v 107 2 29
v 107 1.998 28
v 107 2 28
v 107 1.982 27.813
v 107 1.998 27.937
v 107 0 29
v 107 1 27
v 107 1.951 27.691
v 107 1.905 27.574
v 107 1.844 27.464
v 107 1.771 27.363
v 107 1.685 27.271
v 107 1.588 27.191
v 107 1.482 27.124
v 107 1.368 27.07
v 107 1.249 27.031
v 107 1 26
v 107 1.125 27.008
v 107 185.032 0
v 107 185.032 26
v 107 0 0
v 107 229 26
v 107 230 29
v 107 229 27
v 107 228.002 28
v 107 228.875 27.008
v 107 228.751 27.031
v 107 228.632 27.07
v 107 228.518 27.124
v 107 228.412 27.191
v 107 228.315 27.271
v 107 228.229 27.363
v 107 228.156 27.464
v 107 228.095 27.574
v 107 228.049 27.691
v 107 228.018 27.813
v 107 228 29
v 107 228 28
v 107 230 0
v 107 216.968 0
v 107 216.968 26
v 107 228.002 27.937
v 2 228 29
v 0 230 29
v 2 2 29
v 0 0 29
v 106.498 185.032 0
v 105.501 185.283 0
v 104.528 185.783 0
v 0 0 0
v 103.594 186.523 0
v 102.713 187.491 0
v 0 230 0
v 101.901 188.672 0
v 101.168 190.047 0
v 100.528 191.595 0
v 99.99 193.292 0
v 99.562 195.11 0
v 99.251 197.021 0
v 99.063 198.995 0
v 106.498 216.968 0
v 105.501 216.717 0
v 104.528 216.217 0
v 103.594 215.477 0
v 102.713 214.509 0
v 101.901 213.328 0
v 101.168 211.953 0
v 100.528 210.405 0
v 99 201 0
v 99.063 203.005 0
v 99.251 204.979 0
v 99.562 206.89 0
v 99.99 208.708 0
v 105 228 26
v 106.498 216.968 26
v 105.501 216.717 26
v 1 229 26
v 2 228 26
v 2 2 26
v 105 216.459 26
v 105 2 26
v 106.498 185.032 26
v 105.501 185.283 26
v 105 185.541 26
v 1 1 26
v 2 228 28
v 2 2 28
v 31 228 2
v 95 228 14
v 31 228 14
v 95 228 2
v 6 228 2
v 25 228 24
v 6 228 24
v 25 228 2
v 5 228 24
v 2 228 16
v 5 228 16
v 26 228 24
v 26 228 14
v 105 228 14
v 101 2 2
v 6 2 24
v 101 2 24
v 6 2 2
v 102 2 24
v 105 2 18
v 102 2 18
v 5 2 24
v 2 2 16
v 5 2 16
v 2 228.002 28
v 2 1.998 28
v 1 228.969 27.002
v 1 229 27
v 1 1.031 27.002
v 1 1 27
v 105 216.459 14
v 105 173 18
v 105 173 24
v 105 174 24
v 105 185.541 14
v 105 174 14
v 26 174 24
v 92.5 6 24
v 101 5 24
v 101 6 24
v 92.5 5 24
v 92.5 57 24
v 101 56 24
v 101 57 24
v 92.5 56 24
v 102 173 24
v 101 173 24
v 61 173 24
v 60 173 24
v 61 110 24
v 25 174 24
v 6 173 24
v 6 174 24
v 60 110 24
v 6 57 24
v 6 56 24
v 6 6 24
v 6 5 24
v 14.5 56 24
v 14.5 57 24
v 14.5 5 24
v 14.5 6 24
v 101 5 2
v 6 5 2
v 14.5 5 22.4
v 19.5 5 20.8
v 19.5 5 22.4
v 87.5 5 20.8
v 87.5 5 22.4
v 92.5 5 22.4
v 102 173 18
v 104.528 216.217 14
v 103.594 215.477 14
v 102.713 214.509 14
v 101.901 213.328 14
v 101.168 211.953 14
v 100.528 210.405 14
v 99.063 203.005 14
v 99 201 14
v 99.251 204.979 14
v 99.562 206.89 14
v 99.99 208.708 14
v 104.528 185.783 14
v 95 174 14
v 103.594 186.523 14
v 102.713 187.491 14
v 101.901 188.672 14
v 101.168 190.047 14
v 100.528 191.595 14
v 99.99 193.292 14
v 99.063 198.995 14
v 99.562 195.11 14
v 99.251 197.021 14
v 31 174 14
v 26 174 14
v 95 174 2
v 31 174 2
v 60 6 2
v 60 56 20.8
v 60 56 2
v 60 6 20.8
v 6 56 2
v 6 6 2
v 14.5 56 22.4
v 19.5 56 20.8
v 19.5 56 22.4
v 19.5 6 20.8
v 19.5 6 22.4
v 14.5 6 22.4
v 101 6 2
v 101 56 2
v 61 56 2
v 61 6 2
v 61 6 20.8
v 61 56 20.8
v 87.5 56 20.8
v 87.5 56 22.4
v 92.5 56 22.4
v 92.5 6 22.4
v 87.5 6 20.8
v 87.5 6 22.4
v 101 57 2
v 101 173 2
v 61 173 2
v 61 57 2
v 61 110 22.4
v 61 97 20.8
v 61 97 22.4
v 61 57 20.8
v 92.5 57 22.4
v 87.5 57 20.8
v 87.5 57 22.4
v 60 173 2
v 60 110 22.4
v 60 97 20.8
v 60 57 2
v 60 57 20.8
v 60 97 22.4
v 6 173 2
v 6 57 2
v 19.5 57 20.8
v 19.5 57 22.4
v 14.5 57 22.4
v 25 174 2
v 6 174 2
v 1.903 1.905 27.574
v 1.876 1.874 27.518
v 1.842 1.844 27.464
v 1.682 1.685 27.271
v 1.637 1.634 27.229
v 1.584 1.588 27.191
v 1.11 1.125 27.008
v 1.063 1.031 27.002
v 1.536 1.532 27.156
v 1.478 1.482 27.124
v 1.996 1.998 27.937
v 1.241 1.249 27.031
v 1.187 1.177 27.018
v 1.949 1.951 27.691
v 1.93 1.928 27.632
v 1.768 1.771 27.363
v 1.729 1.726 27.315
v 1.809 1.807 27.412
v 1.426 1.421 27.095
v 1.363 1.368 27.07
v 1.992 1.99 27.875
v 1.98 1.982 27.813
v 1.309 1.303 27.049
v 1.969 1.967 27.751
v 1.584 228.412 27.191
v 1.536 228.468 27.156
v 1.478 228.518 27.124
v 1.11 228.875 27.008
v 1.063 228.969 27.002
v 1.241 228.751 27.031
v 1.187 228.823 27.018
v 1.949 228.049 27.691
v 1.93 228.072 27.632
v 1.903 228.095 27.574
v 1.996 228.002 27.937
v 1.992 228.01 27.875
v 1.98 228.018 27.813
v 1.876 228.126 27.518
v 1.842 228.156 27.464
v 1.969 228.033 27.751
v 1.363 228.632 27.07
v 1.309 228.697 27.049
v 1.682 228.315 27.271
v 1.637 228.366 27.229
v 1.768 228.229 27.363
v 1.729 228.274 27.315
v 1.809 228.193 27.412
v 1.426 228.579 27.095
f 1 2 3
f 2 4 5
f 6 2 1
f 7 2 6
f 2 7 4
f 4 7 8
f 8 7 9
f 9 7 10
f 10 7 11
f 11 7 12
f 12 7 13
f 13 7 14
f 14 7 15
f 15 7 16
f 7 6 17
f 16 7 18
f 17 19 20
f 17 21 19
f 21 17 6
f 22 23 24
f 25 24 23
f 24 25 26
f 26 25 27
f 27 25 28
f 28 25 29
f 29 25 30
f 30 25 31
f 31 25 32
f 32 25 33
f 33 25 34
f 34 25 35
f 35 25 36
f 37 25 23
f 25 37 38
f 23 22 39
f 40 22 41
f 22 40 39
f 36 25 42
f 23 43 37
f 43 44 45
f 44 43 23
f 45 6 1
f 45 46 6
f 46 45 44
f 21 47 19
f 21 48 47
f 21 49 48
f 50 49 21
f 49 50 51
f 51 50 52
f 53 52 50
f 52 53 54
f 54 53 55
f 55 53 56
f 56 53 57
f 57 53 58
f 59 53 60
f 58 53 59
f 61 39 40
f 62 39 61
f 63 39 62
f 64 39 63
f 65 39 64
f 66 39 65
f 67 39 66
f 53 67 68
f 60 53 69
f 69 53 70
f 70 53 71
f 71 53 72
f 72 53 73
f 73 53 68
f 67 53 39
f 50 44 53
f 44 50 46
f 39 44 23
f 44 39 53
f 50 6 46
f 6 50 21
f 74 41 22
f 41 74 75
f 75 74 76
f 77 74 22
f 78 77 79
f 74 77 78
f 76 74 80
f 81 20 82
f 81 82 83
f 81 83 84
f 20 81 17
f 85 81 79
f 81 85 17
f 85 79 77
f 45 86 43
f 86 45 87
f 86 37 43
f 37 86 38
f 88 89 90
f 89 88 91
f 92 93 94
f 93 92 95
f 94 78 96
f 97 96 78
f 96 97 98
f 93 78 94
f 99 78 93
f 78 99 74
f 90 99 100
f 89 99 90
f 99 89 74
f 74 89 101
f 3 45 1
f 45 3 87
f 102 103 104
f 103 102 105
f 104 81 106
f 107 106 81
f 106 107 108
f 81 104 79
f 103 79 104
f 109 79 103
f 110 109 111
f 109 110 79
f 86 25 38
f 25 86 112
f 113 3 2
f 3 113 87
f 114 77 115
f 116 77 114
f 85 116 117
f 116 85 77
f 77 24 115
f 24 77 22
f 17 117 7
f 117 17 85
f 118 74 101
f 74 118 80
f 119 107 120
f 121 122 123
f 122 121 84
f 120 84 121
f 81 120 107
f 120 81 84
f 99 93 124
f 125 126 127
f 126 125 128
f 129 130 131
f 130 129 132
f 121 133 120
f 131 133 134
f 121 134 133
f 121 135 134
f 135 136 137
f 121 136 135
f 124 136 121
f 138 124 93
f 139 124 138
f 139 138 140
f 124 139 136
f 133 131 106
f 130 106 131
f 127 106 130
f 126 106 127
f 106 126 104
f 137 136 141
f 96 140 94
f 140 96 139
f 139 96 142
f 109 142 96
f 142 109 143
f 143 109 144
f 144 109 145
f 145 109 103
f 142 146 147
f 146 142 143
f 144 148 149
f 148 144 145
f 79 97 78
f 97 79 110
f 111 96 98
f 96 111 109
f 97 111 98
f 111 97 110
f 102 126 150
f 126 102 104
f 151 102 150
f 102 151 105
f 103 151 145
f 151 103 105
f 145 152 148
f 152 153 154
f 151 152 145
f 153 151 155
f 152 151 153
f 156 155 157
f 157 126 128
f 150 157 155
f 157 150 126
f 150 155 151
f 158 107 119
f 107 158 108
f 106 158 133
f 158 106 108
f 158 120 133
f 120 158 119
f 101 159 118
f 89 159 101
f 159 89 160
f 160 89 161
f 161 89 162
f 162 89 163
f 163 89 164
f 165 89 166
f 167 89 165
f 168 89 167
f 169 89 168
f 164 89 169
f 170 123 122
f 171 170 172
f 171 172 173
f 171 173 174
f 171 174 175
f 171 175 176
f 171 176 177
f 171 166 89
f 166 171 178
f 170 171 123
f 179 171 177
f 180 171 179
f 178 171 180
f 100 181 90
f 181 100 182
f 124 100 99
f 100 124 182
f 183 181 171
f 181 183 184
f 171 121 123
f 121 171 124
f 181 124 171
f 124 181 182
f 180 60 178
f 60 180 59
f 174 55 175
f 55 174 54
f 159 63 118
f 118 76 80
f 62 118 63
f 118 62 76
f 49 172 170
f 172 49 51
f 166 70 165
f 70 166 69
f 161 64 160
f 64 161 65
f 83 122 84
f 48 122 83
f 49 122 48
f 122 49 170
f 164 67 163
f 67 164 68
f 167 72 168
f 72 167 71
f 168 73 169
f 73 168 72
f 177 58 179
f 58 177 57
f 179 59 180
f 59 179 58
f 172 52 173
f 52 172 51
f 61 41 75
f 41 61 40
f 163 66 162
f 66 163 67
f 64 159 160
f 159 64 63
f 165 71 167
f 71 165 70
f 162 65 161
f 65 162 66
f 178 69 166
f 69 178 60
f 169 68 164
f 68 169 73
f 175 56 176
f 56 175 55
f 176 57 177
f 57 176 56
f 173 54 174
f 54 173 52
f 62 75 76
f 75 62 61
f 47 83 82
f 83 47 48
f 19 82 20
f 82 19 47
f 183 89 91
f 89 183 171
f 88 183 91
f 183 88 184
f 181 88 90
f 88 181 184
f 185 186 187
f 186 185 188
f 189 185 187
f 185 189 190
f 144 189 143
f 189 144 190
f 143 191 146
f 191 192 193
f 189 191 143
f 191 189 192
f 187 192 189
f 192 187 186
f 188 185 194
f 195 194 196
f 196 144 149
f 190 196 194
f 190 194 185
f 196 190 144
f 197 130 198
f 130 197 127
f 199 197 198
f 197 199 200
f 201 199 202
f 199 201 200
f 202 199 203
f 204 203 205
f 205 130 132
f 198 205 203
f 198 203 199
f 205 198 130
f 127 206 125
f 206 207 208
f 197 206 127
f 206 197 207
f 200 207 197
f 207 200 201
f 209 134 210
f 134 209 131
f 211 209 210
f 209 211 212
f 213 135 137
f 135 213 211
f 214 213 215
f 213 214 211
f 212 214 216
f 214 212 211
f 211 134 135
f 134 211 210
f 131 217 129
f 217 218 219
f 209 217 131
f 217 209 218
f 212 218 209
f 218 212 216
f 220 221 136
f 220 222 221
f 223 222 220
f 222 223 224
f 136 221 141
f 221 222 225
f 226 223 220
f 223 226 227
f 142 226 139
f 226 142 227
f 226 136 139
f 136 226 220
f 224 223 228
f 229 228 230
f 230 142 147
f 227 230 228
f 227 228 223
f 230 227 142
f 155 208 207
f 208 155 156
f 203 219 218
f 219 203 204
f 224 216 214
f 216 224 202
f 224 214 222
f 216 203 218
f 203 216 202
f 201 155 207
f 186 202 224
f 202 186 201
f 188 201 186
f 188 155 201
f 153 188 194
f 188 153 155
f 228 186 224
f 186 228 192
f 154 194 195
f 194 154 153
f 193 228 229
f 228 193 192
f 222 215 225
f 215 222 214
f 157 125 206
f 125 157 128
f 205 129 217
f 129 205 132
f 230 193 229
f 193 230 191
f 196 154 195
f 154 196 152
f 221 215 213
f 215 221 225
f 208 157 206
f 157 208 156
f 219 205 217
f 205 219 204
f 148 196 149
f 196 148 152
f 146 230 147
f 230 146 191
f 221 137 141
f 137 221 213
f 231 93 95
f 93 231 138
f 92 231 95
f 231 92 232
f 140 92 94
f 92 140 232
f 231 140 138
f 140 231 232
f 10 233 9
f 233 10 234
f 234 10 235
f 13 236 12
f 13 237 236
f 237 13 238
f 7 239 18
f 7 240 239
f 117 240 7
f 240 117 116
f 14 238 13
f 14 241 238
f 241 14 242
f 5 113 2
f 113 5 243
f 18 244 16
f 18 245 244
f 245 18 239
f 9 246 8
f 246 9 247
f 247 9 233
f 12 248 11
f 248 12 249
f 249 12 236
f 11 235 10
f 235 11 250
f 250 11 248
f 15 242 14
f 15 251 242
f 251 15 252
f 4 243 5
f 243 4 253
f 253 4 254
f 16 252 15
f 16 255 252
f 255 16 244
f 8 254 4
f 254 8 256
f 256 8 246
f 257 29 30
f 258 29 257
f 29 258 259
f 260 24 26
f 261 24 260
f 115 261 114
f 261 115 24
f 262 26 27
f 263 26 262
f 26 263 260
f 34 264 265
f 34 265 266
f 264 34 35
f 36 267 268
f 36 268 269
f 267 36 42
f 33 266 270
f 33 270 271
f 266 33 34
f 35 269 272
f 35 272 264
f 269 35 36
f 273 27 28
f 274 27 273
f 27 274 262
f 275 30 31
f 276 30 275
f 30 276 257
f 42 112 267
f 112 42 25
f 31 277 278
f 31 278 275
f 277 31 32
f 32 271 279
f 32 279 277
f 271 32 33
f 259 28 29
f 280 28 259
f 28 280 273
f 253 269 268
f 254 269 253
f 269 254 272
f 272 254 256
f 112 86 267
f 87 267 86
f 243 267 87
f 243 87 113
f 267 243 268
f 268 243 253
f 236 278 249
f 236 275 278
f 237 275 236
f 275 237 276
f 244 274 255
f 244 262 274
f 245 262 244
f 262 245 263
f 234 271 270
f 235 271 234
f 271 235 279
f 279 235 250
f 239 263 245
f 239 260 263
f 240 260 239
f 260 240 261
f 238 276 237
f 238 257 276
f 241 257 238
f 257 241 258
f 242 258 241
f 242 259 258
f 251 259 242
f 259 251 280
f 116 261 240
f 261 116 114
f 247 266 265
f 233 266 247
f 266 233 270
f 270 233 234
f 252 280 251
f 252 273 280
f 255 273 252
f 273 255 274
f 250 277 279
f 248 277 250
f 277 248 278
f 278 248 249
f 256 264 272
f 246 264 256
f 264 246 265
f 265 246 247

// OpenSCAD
OUT_X = 107;
OUT_Y = 230;
OUT_Z = 29;

FLOOR_PW = 2;
WALL_PW  = 2;

LID_PW = 3;
LID_SLIT = 1;

PAPER_PW = 2;


union(){
	difference(){
	
		cube([ OUT_X , OUT_Y , OUT_Z ]);
		
		// Lid Opening with opening on x axis
		translate([ WALL_PW , WALL_PW , OUT_Z-LID_PW ]) cube([ OUT_X , OUT_Y-2*WALL_PW , LID_PW+1 ]); 
		translate([ WALL_PW-LID_SLIT , WALL_PW-LID_SLIT , OUT_Z-LID_PW ]) 
			cube([ OUT_X , OUT_Y-2*(WALL_PW-LID_SLIT) , 2*LID_SLIT ]);
		
		// Console
		translate([ WALL_PW , WALL_PW , OUT_Z-LID_PW-PAPER_PW ]) cube([ OUT_X-2*WALL_PW , OUT_Y-2*WALL_PW , PAPER_PW+1 ]);
		
		// Trade Agreement
		TA_SLIT_Z = 8;
		TA_SLIT_X = 3;
		translate([ WALL_PW , WALL_PW , OUT_Z-LID_PW-PAPER_PW-TA_SLIT_Z ]) cube([ TA_SLIT_X, OUT_Y-2*WALL_PW , TA_SLIT_Z+1 ]);
		
		// Trade Agreement Side
		TAS_SLIT_Y = 3;
		translate([ WALL_PW+TA_SLIT_X+1 , WALL_PW , FLOOR_PW ]) cube([ S_X , TAS_SLIT_Y , OUT_Z ]);
		
		// Ascendancy
		A_SLIT_Z = 6;
		A_SLIT_X = 3;
		translate([ OUT_X-WALL_PW-A_SLIT_X , WALL_PW , OUT_Z-LID_PW-PAPER_PW-A_SLIT_Z ]) 
			cube([ A_SLIT_X, OUT_Y-2*WALL_PW-1-AC_Y , A_SLIT_Z+1 ]);
		
		// Advancements Cards
		AC_Y = 54;
		AC_X = 79;
		AC_Z = 10;
		translate([ OUT_X-AC_X-WALL_PW , OUT_Y-WALL_PW-AC_Y , OUT_Z-LID_PW-PAPER_PW-AC_Z ]) cube([ AC_X , AC_Y , AC_Z+1 ]);
		translate([ OUT_X , OUT_Y-WALL_PW-0.5*AC_Y , -1 ]) scale([1,2,1]) cylinder(OUT_Z+1,r=8,$fn=50);
		// SpaceStations
		translate([ OUT_X-AC_X-WALL_PW+5 , OUT_Y-WALL_PW-AC_Y , FLOOR_PW ]) cube([ AC_X-15 , AC_Y , OUT_Z ]);
		echo(str("Dice Bay X: ",AC_X-15));
		
		// Ships
		S_X = OUT_X-2*WALL_PW-TA_SLIT_X-A_SLIT_X-2;
		S_Y = 50;
		translate([ WALL_PW+TA_SLIT_X+1 , WALL_PW+TAS_SLIT_Y+1 , FLOOR_PW ]) 
			cube([ OUT_X-2*WALL_PW-TA_SLIT_X-A_SLIT_X-F_X-3 , S_Y , OUT_Z ]);
		translate([ WALL_PW+TA_SLIT_X+1+OUT_X-2*WALL_PW-TA_SLIT_X-A_SLIT_X-F_X-3+1 , WALL_PW+TAS_SLIT_Y+1 , FLOOR_PW ])
			cube([ F_X , S_Y , OUT_Z ]);
		
		// Fleets
		F_X = 40;
		translate([ OUT_X-WALL_PW-A_SLIT_X-1-F_X , WALL_PW+TAS_SLIT_Y+1+S_Y+1 , FLOOR_PW ]) 
			cube([ F_X , OUT_Y-2*WALL_PW-S_Y-AC_Y-2-TAS_SLIT_Y-1 , OUT_Z ]);
		
		// Nodes
		translate([ WALL_PW+TA_SLIT_X+1 , WALL_PW+TAS_SLIT_Y+1+S_Y+1 , FLOOR_PW ]) 
			cube([ OUT_X-2*WALL_PW-TA_SLIT_X-A_SLIT_X-F_X-3 , OUT_Y-2*WALL_PW-S_Y-AC_Y-2-TAS_SLIT_Y-1 , OUT_Z ]);
			
		// Cards
		CS_X = 68;
		CS_Y = 95;
		CS_Z = 1.6;
		
		CB_X = 78;
		CB_Y = 108;
		CB_Z = 1.6;
		translate([ 0.5*OUT_X-0.5*CS_X , WALL_PW , OUT_Z-LID_PW-PAPER_PW-CS_Z-CB_Z ]) cube([ CS_X , CS_Y , OUT_Z ]);
		translate([ 0.5*OUT_X-0.5*CB_X , WALL_PW , OUT_Z-LID_PW-PAPER_PW-CB_Z ]) cube([ CB_X , CB_Y , OUT_Z ]);
		
		// Bonus
		B_Z = 10;
		translate([ WALL_PW+TA_SLIT_X+1 , OUT_Y-WALL_PW-AC_Y , FLOOR_PW ]) 
			cube([ OUT_X-2*WALL_PW-AC_X-2-TA_SLIT_X , AC_Y , OUT_Z ]);
		
	};
	translate([ 0 , 1 , OUT_Z-1 ]) rotate([0,90,0]) cylinder(OUT_X,r=1,$fn=50);
	translate([ 0 , OUT_Y-1 , OUT_Z-1 ]) rotate([0,90,0]) cylinder(OUT_X,r=1,$fn=50);
	
	translate([ 1 , 1 , OUT_Z-1 ]) rotate([-90,0,0]) cylinder(OUT_Y-1,r=1,$fn=50);
};
